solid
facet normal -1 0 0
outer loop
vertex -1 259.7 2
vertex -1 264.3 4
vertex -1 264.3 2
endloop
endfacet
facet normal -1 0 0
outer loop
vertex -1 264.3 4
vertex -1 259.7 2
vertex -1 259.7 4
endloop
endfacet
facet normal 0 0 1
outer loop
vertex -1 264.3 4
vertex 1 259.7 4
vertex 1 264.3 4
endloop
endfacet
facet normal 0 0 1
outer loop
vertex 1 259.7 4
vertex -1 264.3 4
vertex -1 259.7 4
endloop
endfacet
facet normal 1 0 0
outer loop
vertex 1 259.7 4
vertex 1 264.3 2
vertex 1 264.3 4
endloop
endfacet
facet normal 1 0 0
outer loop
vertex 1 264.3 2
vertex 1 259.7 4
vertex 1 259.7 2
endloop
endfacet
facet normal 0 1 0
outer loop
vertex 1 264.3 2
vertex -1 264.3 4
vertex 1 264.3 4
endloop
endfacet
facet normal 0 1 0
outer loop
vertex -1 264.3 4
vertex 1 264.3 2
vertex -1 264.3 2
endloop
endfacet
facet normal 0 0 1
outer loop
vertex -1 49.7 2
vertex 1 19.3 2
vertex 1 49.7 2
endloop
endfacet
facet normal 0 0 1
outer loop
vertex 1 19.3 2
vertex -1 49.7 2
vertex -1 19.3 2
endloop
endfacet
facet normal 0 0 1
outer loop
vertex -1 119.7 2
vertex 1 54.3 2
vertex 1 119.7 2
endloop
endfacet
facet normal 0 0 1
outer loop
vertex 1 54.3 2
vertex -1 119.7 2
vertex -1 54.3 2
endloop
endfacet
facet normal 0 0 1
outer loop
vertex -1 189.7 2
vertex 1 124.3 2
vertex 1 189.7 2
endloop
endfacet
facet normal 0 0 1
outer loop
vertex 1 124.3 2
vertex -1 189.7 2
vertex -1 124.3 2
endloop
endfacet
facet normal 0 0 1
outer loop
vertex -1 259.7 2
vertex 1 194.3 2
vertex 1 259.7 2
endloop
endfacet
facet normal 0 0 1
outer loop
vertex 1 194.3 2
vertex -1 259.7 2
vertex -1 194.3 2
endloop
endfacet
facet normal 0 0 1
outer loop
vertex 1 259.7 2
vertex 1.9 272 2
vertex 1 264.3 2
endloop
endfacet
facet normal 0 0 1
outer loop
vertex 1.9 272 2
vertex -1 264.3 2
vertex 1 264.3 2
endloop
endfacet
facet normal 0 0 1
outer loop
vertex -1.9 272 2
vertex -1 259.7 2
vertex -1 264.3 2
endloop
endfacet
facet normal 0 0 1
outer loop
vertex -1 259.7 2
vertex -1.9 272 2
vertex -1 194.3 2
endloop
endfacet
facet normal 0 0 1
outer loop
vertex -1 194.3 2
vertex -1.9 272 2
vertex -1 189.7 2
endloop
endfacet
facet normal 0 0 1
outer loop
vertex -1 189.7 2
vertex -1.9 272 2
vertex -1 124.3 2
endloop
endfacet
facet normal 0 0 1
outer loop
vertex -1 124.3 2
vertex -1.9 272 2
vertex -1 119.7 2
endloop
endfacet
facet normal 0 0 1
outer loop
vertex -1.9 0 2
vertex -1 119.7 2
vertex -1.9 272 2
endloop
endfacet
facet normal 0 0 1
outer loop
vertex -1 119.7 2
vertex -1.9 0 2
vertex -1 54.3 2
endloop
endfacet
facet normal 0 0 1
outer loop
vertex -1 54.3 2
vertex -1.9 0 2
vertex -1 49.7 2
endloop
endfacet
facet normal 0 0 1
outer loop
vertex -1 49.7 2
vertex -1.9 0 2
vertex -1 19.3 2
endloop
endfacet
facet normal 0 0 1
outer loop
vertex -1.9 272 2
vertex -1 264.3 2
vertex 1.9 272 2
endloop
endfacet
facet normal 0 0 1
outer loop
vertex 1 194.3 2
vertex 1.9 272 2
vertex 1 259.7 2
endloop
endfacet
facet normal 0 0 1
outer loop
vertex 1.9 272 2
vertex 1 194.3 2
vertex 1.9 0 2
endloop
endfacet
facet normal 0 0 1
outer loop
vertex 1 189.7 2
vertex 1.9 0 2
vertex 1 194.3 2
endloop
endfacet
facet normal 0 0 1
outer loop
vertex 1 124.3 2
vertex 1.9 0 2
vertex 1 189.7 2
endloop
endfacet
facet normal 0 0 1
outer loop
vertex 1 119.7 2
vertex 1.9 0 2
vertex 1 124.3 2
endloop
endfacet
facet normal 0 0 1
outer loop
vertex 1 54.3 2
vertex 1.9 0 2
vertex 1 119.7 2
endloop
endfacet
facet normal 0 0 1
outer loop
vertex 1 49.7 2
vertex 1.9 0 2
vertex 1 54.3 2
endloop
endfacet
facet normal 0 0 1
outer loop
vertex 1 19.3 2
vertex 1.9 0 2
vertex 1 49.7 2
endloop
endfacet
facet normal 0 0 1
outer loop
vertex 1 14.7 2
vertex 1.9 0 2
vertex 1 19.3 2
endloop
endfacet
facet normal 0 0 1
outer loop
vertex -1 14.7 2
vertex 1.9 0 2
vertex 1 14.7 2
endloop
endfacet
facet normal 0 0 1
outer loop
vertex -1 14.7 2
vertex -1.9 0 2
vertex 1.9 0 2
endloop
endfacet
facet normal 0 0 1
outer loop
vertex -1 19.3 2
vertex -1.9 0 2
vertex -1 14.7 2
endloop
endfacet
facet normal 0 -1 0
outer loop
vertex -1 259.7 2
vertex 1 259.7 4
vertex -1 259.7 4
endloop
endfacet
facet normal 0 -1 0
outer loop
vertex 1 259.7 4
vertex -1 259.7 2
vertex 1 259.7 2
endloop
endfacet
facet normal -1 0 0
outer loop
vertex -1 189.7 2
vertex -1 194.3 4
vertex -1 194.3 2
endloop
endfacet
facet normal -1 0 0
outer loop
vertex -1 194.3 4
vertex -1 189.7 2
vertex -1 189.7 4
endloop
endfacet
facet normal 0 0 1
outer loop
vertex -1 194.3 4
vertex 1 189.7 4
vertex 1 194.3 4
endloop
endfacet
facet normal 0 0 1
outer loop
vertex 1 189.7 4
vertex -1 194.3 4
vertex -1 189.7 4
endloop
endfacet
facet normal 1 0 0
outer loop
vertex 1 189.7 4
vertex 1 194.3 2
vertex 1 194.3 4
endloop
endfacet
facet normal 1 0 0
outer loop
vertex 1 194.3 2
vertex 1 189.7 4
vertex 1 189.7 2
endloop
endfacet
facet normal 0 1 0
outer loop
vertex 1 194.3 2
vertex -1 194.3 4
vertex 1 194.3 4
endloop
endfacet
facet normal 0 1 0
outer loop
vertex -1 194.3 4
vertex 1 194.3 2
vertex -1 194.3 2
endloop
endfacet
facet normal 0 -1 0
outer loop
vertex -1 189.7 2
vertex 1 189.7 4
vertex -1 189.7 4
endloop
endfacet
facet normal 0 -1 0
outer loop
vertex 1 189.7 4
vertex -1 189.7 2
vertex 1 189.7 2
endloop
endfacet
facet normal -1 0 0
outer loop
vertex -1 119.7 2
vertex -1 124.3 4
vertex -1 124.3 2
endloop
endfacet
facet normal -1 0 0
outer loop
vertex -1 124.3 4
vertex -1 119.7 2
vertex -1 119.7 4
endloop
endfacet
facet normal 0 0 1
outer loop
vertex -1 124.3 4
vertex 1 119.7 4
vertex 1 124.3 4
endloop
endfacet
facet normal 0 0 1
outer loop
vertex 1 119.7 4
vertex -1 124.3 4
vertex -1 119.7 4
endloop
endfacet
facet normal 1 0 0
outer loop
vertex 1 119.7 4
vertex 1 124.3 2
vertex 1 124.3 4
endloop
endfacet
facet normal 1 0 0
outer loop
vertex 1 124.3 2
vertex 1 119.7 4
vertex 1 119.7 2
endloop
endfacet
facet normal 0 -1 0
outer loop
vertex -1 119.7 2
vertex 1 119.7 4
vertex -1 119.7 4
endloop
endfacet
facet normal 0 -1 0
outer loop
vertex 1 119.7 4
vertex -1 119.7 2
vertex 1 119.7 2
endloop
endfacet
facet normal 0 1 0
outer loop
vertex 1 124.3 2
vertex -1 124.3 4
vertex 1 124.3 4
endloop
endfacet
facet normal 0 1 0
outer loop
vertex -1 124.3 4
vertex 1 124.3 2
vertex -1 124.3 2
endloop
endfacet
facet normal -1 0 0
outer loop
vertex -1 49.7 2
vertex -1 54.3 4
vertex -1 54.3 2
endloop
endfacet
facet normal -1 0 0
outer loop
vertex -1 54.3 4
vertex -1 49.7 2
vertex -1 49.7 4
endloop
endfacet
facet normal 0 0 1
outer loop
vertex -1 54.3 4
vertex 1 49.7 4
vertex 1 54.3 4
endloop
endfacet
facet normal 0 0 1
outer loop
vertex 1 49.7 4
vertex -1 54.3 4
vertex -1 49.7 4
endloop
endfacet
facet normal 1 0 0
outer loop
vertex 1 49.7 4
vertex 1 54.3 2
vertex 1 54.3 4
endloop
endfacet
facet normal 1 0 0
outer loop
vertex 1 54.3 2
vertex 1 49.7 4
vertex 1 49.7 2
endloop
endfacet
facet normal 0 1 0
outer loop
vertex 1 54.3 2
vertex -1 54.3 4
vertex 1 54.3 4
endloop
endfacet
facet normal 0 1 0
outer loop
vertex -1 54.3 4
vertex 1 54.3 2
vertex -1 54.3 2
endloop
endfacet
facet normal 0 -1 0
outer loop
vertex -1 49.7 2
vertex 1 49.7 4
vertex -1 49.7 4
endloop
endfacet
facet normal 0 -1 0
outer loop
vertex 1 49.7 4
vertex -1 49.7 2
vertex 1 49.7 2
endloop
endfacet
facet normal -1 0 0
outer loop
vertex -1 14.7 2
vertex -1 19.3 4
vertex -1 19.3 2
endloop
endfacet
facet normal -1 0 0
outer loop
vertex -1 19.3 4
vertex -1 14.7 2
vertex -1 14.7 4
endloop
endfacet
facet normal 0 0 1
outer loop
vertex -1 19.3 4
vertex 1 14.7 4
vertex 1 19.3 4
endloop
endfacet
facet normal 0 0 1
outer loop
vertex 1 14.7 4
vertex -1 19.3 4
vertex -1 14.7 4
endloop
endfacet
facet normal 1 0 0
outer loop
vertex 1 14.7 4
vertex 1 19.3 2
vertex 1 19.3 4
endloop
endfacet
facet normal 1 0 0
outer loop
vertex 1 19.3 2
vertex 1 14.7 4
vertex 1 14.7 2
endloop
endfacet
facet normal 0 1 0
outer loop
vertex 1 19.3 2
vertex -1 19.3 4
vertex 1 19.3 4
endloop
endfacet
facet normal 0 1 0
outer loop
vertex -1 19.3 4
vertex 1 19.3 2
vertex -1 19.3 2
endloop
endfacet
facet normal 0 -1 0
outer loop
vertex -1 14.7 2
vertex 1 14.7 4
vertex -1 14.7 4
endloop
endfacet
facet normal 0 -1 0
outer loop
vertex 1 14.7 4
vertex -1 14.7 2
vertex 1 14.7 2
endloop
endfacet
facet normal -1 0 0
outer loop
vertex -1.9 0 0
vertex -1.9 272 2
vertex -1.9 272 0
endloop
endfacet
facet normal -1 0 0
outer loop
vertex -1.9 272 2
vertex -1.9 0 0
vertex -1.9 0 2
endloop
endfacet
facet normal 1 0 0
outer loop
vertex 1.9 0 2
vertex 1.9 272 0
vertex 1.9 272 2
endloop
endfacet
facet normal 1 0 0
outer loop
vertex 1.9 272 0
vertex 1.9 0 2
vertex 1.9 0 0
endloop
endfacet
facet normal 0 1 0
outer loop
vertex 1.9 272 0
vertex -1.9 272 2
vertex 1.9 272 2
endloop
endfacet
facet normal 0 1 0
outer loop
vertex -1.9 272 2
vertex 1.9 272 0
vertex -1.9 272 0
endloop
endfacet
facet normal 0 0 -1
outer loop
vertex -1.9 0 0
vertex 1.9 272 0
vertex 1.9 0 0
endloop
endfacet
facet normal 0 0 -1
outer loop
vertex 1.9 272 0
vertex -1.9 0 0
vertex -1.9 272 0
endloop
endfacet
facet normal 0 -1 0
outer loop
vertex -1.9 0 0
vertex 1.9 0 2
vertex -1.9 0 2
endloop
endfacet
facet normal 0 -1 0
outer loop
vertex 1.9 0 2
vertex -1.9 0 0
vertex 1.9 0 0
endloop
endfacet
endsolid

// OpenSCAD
// Black divider strip that sits in the groove between the two green
// light-pipe ridges on the NSM Emerald Ice side pillar.
// Print flat (as modelled), black PLA. 273 mm is longer than the A1's
// 256 mm bed, so rotate it to lie DIAGONALLY on the plate (~45 deg).
// Units mm.

length = 272;    // 10.75"
groove_w = 4.0;  // measured groove/strip width
clr = 0.2;       // total side clearance so it drops into the groove
thick = 2.0;     // depth (estimate; adjust)
end_r = 0;       // >0 rounds the ends (half the width = fully round)

// optional locating pegs for the rectangular holes in the groove.
// List each hole centre, measured in mm from the TOP end. Empty = no pegs.
pegs = [10, 80, 150, 220, 255];  // 4 holes 70 mm apart, 5th 35 mm after
peg_w = 2.0;         // across the groove
peg_l = 4.6;         // along the groove
peg_h = 2;           // how far it pokes into the hole

w = groove_w - clr;

module strip() {
    if (end_r > 0)
        hull() for (y = [end_r, length - end_r])
            translate([0, y, 0]) cylinder(h = thick, r = end_r, $fn = 32);
    else
        translate([-w/2, 0, 0]) cube([w, length, thick]);
}

strip();
// peg sits on the top face as printed (= the back face in the jukebox)
for (d = pegs)
    translate([-peg_w/2, length - d - peg_l/2, thick])
        cube([peg_w, peg_l, peg_h]);
